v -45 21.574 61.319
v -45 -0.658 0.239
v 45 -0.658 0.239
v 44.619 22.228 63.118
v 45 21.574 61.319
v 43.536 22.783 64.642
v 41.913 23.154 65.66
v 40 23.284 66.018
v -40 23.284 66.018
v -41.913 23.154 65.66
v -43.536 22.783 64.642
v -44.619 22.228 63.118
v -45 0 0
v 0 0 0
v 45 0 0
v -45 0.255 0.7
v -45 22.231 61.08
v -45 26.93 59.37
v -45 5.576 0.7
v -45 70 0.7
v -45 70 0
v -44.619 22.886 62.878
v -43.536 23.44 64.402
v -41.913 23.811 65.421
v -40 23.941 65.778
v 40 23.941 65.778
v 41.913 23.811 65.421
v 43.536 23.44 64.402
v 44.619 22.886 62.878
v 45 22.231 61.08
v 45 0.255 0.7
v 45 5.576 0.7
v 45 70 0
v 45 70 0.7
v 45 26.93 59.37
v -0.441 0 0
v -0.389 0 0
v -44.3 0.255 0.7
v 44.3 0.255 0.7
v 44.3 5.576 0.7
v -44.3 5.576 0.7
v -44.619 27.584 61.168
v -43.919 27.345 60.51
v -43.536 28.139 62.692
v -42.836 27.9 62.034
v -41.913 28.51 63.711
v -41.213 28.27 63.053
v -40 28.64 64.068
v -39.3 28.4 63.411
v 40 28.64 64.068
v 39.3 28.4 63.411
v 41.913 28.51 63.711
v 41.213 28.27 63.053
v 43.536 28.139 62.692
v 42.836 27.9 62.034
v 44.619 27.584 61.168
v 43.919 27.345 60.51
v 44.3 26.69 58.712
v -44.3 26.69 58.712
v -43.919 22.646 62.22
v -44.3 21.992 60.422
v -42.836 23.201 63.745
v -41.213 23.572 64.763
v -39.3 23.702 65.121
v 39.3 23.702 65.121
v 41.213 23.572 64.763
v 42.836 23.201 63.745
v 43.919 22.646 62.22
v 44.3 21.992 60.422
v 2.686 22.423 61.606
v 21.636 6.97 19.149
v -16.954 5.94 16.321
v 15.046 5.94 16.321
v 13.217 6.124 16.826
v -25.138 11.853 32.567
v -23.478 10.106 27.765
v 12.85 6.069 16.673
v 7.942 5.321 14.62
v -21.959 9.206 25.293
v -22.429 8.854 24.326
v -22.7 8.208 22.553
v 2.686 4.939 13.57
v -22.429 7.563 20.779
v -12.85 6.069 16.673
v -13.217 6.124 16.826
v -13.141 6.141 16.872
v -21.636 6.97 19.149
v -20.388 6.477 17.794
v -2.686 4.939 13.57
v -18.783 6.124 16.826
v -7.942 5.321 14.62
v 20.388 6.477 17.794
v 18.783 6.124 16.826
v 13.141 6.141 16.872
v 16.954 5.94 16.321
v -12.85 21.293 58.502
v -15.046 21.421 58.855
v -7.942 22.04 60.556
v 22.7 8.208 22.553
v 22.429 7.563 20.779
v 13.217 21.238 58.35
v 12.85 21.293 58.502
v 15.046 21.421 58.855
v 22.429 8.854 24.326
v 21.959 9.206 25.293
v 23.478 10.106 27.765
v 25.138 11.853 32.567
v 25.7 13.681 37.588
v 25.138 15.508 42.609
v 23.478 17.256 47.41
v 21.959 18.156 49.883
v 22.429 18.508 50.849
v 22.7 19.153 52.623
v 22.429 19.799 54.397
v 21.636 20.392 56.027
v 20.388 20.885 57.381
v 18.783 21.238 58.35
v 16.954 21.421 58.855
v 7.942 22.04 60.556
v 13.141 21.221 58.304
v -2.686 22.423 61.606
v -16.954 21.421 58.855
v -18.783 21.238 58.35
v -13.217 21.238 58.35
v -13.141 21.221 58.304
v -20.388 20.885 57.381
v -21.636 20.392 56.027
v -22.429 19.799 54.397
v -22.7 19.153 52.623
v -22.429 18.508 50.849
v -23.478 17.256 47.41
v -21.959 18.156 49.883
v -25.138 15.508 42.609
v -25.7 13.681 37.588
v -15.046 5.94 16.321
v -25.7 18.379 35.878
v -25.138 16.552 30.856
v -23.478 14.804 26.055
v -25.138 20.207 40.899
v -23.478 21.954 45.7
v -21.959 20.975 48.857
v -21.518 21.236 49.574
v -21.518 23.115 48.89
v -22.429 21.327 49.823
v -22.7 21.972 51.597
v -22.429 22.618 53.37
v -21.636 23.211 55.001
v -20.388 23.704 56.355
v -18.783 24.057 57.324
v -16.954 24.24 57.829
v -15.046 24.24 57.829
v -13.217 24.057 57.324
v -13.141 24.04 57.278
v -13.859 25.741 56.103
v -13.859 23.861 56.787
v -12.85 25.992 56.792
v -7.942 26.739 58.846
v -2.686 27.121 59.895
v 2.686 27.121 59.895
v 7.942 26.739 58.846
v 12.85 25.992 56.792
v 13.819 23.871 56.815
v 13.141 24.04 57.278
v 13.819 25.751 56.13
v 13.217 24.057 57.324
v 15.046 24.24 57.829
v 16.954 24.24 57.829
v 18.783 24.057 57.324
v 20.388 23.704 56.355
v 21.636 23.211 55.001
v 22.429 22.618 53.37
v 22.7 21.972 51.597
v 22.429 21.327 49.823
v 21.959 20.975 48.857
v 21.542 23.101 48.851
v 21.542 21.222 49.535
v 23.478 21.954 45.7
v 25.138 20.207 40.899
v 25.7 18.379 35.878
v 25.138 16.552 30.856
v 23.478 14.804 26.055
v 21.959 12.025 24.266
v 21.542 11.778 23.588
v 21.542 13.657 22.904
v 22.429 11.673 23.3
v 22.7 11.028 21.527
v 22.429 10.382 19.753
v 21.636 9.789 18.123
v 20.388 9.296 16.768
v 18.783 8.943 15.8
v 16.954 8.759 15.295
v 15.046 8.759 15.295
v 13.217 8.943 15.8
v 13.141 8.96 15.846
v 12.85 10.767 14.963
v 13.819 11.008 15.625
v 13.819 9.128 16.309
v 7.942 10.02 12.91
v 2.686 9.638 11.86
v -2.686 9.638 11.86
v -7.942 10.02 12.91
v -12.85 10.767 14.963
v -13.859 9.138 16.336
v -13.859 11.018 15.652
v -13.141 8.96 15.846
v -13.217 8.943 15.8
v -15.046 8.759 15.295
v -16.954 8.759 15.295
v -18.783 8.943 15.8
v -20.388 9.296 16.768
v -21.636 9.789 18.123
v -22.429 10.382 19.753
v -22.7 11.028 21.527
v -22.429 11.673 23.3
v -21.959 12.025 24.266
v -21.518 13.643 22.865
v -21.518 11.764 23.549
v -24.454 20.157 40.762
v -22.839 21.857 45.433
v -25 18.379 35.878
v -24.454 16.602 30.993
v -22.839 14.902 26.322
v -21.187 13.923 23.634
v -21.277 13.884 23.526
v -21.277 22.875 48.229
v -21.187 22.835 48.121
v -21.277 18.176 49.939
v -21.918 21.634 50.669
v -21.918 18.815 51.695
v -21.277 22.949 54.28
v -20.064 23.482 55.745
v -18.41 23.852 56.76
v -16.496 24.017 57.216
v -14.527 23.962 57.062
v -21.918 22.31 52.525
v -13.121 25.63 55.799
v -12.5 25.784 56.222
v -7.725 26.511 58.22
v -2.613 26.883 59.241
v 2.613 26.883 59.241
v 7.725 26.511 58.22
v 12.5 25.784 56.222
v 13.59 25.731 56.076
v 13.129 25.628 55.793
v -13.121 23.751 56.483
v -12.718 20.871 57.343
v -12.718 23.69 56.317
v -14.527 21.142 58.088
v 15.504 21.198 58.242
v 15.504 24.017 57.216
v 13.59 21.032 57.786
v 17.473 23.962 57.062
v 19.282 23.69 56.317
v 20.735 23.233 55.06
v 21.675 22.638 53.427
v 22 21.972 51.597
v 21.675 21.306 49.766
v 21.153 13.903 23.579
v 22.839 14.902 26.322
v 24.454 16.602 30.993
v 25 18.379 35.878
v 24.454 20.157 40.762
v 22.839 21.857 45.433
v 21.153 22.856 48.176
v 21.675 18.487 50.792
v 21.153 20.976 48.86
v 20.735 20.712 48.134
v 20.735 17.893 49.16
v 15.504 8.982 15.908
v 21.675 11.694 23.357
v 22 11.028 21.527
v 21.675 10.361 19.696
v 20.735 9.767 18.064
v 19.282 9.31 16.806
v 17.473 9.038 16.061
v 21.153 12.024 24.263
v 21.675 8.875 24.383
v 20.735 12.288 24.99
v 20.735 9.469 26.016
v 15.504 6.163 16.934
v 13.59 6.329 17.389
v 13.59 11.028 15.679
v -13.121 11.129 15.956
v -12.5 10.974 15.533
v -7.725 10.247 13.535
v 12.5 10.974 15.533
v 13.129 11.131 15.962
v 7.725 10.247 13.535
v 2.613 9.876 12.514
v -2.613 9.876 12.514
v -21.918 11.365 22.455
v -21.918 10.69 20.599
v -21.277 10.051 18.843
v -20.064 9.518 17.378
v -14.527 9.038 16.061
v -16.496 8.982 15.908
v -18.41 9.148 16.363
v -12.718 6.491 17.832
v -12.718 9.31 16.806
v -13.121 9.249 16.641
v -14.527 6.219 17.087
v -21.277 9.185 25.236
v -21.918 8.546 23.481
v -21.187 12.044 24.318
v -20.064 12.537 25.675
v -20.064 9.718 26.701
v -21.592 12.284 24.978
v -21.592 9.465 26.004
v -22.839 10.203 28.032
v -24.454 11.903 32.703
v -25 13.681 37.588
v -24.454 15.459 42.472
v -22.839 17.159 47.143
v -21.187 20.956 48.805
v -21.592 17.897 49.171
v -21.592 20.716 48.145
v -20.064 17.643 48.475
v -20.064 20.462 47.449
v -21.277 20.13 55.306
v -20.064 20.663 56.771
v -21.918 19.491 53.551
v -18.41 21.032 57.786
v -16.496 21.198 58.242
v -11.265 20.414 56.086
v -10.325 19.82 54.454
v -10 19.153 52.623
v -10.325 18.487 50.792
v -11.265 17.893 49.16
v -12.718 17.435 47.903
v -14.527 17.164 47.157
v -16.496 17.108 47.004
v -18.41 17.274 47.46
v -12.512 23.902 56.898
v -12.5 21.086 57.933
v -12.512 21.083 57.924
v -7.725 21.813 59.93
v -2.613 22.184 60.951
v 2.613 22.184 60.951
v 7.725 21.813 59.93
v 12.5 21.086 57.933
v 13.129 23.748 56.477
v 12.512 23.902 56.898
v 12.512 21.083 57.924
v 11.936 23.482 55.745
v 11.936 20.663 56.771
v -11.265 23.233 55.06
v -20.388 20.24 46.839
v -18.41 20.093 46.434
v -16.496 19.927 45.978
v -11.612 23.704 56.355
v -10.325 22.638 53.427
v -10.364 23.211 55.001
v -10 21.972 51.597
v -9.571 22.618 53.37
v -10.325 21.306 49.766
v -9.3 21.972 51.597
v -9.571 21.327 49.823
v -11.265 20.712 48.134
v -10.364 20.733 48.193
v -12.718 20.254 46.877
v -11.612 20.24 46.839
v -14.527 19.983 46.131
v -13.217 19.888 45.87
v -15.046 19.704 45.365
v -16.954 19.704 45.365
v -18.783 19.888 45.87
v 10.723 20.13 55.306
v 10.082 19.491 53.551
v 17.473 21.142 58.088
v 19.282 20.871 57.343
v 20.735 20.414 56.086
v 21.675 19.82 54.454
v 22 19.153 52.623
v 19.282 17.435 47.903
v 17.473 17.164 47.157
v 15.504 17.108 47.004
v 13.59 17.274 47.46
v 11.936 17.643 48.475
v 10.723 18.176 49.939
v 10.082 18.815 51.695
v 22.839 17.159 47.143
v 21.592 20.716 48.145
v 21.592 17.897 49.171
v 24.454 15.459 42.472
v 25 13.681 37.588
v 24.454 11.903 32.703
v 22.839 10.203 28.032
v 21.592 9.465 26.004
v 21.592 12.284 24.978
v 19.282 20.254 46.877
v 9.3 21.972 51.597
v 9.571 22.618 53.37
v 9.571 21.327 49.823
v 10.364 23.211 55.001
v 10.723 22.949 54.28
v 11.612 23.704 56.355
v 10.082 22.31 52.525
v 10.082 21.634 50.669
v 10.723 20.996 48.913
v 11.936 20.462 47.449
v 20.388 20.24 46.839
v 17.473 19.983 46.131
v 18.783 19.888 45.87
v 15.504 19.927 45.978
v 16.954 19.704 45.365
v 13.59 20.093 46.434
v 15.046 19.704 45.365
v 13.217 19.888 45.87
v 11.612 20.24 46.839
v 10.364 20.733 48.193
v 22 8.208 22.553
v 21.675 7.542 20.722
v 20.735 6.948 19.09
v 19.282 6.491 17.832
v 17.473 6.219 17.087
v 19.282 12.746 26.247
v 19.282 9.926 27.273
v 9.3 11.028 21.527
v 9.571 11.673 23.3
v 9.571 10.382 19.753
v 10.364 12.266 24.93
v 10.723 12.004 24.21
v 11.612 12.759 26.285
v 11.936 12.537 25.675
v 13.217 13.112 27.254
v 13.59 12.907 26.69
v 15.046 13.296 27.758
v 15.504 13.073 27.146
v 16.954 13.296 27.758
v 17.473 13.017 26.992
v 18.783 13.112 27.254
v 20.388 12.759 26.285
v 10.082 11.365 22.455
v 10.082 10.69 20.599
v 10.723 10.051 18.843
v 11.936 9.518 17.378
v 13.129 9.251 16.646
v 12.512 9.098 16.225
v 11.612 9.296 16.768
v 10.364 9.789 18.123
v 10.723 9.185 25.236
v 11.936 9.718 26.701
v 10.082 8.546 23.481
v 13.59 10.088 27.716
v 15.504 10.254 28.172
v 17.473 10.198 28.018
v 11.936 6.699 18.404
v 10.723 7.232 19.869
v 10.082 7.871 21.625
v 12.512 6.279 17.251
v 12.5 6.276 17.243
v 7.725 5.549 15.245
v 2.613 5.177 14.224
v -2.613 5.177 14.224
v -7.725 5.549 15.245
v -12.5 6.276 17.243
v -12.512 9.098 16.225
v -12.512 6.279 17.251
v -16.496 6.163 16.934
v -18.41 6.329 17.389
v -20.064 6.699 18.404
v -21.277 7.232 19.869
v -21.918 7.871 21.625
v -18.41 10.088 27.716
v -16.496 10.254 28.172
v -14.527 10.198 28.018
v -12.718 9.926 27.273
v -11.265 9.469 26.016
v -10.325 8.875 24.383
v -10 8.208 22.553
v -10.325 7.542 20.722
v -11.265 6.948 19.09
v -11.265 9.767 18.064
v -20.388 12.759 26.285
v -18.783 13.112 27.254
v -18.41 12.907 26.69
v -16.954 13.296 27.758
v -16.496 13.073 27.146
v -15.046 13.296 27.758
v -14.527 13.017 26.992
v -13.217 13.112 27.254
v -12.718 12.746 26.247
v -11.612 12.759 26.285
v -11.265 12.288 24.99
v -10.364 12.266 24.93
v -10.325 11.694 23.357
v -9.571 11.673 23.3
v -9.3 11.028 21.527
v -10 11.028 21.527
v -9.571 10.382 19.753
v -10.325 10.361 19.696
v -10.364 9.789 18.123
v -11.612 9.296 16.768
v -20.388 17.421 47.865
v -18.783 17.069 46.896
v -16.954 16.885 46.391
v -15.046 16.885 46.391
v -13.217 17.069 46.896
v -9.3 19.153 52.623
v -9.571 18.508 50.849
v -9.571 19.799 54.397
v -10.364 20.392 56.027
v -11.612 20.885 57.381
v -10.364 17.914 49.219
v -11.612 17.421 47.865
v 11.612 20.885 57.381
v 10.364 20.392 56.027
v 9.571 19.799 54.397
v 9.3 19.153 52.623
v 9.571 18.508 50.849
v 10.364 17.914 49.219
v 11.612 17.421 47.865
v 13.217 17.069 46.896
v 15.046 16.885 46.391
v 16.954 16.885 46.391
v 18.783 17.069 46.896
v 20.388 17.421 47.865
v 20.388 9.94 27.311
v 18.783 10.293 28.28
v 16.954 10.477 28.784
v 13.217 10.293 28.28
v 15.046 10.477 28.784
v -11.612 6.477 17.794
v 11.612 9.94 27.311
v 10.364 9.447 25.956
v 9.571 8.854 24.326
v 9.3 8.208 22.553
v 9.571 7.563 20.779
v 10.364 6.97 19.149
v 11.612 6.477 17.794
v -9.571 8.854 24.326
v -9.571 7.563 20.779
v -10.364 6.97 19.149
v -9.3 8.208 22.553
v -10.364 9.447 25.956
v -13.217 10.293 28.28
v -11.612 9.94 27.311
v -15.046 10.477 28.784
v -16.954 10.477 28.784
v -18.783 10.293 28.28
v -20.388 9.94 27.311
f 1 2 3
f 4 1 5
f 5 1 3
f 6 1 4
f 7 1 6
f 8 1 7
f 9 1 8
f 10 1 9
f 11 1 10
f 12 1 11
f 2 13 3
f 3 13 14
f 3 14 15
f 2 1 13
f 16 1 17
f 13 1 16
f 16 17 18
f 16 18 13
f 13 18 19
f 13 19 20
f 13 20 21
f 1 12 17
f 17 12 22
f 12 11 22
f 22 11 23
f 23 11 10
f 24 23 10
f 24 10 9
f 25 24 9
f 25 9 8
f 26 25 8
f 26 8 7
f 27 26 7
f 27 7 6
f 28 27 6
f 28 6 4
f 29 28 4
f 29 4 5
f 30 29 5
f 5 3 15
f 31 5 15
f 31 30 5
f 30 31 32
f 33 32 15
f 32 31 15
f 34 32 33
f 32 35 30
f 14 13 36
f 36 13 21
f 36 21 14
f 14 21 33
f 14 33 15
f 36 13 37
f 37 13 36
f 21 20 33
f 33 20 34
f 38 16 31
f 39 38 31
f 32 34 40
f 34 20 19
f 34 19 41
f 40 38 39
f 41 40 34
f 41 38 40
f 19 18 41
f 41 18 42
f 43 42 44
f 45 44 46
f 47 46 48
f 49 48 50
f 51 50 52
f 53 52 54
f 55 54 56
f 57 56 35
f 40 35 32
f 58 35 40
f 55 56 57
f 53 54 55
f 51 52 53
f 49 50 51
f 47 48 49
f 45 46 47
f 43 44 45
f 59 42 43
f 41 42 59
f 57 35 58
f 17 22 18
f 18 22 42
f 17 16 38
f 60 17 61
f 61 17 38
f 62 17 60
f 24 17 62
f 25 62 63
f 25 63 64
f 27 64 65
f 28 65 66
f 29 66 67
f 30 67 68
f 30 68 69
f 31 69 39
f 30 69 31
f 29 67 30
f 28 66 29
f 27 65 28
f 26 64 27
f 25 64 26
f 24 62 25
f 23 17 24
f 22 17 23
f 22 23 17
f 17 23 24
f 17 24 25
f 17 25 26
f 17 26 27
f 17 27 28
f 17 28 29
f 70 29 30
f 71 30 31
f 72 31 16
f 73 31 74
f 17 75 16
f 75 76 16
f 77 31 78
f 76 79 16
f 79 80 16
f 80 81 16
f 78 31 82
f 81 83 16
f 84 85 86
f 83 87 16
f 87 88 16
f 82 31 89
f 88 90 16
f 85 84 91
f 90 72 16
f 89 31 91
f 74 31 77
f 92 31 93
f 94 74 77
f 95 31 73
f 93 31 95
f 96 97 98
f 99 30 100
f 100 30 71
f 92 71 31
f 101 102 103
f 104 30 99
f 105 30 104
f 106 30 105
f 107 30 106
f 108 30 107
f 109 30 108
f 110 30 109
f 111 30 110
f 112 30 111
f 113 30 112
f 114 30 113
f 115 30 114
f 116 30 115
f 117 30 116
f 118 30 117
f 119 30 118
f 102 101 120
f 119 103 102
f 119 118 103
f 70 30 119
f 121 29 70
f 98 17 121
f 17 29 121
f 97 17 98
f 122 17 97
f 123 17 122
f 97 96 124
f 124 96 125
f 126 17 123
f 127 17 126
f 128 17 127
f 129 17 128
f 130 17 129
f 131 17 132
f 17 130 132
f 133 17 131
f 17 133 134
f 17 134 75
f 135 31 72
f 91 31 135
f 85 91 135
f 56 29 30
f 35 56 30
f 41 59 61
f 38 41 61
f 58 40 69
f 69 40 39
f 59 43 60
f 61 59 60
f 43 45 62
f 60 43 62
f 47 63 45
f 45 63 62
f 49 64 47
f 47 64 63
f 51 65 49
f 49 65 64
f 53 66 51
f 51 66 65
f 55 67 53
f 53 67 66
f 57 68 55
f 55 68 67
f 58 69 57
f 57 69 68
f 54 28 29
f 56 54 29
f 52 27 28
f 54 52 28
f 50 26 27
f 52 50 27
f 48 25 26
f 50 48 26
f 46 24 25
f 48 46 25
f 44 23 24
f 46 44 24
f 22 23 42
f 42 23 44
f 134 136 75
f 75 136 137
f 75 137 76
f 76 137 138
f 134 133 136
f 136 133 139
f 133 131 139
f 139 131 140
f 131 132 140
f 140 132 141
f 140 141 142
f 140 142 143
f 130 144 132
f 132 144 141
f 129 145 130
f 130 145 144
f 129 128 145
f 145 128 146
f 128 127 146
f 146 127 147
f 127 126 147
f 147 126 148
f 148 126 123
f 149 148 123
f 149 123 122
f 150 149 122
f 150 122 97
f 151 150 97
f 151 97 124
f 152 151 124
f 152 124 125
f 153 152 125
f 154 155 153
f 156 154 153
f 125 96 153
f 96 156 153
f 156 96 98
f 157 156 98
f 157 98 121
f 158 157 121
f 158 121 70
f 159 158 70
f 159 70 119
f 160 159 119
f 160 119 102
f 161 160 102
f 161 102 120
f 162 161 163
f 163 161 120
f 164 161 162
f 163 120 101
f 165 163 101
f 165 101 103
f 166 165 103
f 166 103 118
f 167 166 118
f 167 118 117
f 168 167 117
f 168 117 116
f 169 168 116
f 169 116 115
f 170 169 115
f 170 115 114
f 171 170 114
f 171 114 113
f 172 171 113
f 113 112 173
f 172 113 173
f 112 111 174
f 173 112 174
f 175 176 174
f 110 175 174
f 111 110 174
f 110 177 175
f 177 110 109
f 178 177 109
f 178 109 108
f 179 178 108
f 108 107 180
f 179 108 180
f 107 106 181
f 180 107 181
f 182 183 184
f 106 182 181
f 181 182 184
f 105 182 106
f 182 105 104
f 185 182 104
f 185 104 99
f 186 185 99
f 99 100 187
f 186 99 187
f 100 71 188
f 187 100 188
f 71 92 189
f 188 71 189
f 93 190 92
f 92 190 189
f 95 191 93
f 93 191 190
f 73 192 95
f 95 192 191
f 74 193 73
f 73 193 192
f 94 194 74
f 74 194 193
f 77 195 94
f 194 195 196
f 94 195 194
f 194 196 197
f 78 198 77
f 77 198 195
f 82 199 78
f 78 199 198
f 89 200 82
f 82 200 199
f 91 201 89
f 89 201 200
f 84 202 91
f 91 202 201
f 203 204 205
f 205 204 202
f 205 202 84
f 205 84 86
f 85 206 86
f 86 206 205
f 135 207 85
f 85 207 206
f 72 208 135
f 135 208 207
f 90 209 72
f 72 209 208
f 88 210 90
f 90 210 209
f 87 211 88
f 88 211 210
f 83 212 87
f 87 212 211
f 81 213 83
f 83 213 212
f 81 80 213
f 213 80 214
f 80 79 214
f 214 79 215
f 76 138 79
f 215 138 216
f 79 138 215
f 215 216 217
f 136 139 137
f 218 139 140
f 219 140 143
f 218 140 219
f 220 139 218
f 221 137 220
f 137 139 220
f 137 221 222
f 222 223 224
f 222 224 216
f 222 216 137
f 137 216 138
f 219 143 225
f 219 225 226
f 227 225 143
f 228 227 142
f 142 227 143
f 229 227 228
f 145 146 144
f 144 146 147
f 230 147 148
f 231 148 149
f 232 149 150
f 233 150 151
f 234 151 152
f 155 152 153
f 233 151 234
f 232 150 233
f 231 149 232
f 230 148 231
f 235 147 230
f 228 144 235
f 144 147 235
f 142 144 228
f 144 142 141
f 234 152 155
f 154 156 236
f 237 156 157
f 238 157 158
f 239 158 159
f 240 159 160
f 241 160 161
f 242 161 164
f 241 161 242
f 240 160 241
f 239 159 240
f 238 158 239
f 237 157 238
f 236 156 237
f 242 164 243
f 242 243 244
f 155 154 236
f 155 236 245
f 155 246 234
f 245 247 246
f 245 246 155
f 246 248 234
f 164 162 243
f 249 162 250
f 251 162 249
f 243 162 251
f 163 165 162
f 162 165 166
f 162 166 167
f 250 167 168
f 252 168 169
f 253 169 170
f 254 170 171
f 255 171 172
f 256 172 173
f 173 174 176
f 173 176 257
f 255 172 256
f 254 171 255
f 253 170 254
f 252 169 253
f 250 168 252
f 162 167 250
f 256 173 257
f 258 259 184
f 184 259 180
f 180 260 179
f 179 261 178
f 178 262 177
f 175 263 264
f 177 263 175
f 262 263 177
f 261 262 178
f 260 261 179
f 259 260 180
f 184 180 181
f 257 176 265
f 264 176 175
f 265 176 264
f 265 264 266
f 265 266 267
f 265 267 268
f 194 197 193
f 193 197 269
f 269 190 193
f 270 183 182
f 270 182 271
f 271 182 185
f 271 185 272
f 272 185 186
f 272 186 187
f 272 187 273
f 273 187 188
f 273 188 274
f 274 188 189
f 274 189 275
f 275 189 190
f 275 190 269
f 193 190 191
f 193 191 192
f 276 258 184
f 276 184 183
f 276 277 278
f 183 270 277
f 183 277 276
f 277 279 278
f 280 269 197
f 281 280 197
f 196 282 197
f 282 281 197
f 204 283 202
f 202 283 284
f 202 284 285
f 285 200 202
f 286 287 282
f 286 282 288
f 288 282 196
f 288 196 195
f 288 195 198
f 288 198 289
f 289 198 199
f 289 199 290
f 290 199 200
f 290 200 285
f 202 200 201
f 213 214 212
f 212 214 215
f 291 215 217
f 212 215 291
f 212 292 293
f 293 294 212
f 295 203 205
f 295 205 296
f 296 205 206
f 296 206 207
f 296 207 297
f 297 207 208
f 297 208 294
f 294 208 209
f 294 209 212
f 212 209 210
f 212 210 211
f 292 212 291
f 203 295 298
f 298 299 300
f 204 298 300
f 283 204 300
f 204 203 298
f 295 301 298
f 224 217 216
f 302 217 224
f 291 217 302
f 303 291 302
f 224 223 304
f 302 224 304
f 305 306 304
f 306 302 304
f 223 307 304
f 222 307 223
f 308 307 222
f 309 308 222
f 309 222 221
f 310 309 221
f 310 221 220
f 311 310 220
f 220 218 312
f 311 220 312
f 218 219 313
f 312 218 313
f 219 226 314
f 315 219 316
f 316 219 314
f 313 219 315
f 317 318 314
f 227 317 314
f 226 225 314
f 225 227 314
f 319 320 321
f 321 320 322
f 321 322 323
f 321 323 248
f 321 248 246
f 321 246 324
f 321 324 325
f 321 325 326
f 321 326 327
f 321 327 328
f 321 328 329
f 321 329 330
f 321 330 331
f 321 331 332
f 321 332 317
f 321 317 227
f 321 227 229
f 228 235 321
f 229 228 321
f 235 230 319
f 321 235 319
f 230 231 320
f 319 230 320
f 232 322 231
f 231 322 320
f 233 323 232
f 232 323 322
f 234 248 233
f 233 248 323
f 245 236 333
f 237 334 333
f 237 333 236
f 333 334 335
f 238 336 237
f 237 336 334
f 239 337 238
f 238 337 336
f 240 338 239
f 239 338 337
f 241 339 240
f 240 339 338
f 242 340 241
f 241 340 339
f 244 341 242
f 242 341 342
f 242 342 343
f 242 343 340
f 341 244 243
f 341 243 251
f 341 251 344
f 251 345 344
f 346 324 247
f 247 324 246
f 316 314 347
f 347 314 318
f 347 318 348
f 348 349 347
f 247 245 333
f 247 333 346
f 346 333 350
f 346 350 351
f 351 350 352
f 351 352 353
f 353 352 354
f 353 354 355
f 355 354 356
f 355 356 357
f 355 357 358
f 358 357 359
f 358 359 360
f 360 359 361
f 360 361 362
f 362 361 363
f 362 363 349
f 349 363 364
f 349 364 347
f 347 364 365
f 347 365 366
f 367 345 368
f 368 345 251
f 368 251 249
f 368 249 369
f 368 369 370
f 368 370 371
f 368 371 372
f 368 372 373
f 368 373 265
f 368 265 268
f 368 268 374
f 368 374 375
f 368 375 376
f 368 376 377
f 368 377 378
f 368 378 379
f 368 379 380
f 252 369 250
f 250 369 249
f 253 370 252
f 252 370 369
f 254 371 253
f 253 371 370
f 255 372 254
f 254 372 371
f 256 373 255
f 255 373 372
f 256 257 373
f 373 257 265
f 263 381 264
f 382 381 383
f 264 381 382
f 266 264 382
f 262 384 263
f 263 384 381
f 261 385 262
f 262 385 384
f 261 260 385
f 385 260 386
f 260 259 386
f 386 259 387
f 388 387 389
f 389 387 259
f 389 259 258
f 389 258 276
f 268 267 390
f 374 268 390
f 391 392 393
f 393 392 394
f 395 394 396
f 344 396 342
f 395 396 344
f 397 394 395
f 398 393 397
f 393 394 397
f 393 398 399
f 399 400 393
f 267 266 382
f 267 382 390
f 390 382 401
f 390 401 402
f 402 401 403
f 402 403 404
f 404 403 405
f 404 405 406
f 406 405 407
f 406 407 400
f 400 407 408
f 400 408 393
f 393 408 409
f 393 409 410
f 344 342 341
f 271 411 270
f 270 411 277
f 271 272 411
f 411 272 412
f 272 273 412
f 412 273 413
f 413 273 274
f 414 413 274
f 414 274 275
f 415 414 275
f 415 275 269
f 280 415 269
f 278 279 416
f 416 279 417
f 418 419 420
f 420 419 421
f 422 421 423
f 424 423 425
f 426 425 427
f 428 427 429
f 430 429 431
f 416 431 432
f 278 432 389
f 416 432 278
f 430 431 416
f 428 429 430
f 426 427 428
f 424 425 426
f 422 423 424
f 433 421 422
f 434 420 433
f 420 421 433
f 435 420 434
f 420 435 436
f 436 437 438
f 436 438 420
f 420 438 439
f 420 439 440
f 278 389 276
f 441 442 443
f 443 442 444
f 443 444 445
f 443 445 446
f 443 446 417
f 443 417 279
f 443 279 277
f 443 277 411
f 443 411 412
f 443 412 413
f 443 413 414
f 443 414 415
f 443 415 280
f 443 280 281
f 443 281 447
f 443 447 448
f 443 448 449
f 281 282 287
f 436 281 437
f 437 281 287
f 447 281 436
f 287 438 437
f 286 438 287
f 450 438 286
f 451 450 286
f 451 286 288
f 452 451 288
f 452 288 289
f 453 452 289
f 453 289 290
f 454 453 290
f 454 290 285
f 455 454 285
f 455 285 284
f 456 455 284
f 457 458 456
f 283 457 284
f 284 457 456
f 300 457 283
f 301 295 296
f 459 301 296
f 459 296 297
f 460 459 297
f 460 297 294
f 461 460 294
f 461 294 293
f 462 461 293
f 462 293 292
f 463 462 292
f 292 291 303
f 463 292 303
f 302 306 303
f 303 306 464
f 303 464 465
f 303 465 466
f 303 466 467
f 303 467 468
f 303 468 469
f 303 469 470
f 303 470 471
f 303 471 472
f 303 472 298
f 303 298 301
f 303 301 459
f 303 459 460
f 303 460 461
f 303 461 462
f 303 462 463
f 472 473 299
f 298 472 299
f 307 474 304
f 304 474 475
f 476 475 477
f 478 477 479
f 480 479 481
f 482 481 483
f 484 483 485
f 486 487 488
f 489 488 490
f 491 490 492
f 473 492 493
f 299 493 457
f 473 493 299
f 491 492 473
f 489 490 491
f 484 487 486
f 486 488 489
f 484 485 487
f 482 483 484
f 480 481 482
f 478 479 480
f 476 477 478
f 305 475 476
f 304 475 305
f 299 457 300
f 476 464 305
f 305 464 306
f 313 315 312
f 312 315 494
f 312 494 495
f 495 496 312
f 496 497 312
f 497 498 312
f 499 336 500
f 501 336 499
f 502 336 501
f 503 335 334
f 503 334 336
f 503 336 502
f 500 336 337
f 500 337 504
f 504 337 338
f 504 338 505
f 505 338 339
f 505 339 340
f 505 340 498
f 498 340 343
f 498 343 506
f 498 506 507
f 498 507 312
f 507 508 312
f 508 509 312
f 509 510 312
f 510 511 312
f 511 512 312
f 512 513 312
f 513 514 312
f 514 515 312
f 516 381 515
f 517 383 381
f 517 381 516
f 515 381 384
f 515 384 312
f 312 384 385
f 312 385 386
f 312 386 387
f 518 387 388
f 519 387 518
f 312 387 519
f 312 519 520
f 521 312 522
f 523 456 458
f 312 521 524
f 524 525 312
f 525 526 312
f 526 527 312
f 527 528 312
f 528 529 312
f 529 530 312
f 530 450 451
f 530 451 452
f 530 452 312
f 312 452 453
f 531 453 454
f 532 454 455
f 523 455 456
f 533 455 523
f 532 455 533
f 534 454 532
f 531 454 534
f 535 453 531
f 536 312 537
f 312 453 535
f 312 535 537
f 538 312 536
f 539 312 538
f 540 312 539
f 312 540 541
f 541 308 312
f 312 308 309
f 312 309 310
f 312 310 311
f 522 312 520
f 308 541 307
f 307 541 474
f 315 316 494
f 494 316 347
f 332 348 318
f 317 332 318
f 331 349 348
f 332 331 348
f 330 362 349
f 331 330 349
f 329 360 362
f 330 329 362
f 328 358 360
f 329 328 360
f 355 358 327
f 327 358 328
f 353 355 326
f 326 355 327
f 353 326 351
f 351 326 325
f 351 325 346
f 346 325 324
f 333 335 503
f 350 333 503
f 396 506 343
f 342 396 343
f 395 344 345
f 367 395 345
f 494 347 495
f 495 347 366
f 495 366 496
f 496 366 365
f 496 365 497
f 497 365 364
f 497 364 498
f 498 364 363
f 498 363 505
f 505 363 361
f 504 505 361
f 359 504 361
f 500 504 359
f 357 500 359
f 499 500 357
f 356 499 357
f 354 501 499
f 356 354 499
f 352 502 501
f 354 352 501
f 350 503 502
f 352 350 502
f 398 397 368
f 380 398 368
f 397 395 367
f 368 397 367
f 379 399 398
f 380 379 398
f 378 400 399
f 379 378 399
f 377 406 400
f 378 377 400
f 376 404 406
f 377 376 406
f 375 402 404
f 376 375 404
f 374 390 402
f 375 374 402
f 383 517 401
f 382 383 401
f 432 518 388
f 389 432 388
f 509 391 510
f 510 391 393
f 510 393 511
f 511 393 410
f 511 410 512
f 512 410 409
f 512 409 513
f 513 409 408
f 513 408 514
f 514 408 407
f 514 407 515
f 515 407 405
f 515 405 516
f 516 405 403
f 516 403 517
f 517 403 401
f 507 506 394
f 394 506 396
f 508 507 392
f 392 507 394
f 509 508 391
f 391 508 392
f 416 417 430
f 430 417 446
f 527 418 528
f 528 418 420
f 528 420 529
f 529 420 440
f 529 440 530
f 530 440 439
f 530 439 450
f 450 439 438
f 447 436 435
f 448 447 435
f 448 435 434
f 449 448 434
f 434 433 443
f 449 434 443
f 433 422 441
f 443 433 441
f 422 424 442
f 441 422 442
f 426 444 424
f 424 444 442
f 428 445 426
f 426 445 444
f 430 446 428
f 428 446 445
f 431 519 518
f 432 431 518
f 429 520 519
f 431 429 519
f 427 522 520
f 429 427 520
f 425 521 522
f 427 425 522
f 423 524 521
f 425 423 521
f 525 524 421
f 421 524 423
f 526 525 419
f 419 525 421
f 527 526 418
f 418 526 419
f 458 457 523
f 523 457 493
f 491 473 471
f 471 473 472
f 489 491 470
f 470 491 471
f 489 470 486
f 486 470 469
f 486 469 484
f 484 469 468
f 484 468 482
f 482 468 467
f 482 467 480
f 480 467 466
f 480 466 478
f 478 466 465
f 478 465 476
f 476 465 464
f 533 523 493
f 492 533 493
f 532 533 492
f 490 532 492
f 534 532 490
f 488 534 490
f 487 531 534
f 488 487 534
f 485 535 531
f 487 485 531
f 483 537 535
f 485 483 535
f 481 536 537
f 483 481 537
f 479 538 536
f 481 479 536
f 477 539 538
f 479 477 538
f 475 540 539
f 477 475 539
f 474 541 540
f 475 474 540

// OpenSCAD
thickness = 0.7;

mag_centers = [[-16, -16], [-16, 16],
               [16, -16], [16, 16]];

module high_mag(pos){
    // The magnet, only very high
    radius = 6;
    height = 100;
    translate(pos){
        cylinder(h=height, r=radius);
    }
}

module hollow(pos, radius, height) {
    // Hollow cylinder
    translate(pos){
        difference() {
            cylinder(h=height, r=radius+thickness);
            translate([0,0,-1]){
                cylinder(h=height+2, r=radius);
            }
        }
    }
}
module mag_holder(pos){
    // Holder of one magnet
    hollow(pos, 6, 3);
}

module mag_holders(){
    // All magnet holders
    for (pos = mag_centers){
        mag_holder(pos);
    }
}

module coil_holder(pos=[0,0,0]){
    // Holder of the charging-coil
    difference(){
        hollow(pos, 25, 5);
        // Remove intersection with the mag-holders
        for(pos = mag_centers){
            mag_holder(pos);
            high_mag([pos[0], pos[1], -1]);
        }
    }
}

module front_outline(){
    // Outline for the whole front
    difference(){
        hull(){
            translate([-40, -25, -thickness]) cylinder(r=5, h=thickness);
            translate([40, -25, -thickness]) cylinder(r=5, h=thickness);
            translate([-45, 0, -thickness]){
                cube(size=[90, 40, thickness]);
            }
        }
        hull(){
            translate([-40+thickness, -25+thickness, -1]) cylinder(r=5, h=2);
            translate([40-thickness, -25+thickness, -1]) cylinder(r=5, h=2);
            translate([-45+thickness, -thickness, -1]){
                cube(size=[90-2*thickness, 40, 2]);
            }
        }
    }
}

module front_plate(){
    // The front-plate
    hull(){
        front_outline();
    }
    translate([0,0,5]){
        resize([0, 0, 5]) front_outline();
    }
}
module front(){
    // The whole front-piece
    union(){
        coil_holder();
        mag_holders();
        front_plate();
    }
}

module rotated_front(){
    difference() {
    rotate([-110]){
        translate([0, -40]){
            front();
        }
    }
    rotate([180, 0, 180]){
        translate([-50, 0]){
            cube([100, 100, 10]);
        }
    }
    }
}

module base(){
    // The base
    translate([-45, 0, 0]){
        cube([90, 70, thickness]);
    }
}

module main(){
    difference(){
        union(){
            base();
            rotated_front();
        }
    }
}

main();
//front();
//rotated_front();
